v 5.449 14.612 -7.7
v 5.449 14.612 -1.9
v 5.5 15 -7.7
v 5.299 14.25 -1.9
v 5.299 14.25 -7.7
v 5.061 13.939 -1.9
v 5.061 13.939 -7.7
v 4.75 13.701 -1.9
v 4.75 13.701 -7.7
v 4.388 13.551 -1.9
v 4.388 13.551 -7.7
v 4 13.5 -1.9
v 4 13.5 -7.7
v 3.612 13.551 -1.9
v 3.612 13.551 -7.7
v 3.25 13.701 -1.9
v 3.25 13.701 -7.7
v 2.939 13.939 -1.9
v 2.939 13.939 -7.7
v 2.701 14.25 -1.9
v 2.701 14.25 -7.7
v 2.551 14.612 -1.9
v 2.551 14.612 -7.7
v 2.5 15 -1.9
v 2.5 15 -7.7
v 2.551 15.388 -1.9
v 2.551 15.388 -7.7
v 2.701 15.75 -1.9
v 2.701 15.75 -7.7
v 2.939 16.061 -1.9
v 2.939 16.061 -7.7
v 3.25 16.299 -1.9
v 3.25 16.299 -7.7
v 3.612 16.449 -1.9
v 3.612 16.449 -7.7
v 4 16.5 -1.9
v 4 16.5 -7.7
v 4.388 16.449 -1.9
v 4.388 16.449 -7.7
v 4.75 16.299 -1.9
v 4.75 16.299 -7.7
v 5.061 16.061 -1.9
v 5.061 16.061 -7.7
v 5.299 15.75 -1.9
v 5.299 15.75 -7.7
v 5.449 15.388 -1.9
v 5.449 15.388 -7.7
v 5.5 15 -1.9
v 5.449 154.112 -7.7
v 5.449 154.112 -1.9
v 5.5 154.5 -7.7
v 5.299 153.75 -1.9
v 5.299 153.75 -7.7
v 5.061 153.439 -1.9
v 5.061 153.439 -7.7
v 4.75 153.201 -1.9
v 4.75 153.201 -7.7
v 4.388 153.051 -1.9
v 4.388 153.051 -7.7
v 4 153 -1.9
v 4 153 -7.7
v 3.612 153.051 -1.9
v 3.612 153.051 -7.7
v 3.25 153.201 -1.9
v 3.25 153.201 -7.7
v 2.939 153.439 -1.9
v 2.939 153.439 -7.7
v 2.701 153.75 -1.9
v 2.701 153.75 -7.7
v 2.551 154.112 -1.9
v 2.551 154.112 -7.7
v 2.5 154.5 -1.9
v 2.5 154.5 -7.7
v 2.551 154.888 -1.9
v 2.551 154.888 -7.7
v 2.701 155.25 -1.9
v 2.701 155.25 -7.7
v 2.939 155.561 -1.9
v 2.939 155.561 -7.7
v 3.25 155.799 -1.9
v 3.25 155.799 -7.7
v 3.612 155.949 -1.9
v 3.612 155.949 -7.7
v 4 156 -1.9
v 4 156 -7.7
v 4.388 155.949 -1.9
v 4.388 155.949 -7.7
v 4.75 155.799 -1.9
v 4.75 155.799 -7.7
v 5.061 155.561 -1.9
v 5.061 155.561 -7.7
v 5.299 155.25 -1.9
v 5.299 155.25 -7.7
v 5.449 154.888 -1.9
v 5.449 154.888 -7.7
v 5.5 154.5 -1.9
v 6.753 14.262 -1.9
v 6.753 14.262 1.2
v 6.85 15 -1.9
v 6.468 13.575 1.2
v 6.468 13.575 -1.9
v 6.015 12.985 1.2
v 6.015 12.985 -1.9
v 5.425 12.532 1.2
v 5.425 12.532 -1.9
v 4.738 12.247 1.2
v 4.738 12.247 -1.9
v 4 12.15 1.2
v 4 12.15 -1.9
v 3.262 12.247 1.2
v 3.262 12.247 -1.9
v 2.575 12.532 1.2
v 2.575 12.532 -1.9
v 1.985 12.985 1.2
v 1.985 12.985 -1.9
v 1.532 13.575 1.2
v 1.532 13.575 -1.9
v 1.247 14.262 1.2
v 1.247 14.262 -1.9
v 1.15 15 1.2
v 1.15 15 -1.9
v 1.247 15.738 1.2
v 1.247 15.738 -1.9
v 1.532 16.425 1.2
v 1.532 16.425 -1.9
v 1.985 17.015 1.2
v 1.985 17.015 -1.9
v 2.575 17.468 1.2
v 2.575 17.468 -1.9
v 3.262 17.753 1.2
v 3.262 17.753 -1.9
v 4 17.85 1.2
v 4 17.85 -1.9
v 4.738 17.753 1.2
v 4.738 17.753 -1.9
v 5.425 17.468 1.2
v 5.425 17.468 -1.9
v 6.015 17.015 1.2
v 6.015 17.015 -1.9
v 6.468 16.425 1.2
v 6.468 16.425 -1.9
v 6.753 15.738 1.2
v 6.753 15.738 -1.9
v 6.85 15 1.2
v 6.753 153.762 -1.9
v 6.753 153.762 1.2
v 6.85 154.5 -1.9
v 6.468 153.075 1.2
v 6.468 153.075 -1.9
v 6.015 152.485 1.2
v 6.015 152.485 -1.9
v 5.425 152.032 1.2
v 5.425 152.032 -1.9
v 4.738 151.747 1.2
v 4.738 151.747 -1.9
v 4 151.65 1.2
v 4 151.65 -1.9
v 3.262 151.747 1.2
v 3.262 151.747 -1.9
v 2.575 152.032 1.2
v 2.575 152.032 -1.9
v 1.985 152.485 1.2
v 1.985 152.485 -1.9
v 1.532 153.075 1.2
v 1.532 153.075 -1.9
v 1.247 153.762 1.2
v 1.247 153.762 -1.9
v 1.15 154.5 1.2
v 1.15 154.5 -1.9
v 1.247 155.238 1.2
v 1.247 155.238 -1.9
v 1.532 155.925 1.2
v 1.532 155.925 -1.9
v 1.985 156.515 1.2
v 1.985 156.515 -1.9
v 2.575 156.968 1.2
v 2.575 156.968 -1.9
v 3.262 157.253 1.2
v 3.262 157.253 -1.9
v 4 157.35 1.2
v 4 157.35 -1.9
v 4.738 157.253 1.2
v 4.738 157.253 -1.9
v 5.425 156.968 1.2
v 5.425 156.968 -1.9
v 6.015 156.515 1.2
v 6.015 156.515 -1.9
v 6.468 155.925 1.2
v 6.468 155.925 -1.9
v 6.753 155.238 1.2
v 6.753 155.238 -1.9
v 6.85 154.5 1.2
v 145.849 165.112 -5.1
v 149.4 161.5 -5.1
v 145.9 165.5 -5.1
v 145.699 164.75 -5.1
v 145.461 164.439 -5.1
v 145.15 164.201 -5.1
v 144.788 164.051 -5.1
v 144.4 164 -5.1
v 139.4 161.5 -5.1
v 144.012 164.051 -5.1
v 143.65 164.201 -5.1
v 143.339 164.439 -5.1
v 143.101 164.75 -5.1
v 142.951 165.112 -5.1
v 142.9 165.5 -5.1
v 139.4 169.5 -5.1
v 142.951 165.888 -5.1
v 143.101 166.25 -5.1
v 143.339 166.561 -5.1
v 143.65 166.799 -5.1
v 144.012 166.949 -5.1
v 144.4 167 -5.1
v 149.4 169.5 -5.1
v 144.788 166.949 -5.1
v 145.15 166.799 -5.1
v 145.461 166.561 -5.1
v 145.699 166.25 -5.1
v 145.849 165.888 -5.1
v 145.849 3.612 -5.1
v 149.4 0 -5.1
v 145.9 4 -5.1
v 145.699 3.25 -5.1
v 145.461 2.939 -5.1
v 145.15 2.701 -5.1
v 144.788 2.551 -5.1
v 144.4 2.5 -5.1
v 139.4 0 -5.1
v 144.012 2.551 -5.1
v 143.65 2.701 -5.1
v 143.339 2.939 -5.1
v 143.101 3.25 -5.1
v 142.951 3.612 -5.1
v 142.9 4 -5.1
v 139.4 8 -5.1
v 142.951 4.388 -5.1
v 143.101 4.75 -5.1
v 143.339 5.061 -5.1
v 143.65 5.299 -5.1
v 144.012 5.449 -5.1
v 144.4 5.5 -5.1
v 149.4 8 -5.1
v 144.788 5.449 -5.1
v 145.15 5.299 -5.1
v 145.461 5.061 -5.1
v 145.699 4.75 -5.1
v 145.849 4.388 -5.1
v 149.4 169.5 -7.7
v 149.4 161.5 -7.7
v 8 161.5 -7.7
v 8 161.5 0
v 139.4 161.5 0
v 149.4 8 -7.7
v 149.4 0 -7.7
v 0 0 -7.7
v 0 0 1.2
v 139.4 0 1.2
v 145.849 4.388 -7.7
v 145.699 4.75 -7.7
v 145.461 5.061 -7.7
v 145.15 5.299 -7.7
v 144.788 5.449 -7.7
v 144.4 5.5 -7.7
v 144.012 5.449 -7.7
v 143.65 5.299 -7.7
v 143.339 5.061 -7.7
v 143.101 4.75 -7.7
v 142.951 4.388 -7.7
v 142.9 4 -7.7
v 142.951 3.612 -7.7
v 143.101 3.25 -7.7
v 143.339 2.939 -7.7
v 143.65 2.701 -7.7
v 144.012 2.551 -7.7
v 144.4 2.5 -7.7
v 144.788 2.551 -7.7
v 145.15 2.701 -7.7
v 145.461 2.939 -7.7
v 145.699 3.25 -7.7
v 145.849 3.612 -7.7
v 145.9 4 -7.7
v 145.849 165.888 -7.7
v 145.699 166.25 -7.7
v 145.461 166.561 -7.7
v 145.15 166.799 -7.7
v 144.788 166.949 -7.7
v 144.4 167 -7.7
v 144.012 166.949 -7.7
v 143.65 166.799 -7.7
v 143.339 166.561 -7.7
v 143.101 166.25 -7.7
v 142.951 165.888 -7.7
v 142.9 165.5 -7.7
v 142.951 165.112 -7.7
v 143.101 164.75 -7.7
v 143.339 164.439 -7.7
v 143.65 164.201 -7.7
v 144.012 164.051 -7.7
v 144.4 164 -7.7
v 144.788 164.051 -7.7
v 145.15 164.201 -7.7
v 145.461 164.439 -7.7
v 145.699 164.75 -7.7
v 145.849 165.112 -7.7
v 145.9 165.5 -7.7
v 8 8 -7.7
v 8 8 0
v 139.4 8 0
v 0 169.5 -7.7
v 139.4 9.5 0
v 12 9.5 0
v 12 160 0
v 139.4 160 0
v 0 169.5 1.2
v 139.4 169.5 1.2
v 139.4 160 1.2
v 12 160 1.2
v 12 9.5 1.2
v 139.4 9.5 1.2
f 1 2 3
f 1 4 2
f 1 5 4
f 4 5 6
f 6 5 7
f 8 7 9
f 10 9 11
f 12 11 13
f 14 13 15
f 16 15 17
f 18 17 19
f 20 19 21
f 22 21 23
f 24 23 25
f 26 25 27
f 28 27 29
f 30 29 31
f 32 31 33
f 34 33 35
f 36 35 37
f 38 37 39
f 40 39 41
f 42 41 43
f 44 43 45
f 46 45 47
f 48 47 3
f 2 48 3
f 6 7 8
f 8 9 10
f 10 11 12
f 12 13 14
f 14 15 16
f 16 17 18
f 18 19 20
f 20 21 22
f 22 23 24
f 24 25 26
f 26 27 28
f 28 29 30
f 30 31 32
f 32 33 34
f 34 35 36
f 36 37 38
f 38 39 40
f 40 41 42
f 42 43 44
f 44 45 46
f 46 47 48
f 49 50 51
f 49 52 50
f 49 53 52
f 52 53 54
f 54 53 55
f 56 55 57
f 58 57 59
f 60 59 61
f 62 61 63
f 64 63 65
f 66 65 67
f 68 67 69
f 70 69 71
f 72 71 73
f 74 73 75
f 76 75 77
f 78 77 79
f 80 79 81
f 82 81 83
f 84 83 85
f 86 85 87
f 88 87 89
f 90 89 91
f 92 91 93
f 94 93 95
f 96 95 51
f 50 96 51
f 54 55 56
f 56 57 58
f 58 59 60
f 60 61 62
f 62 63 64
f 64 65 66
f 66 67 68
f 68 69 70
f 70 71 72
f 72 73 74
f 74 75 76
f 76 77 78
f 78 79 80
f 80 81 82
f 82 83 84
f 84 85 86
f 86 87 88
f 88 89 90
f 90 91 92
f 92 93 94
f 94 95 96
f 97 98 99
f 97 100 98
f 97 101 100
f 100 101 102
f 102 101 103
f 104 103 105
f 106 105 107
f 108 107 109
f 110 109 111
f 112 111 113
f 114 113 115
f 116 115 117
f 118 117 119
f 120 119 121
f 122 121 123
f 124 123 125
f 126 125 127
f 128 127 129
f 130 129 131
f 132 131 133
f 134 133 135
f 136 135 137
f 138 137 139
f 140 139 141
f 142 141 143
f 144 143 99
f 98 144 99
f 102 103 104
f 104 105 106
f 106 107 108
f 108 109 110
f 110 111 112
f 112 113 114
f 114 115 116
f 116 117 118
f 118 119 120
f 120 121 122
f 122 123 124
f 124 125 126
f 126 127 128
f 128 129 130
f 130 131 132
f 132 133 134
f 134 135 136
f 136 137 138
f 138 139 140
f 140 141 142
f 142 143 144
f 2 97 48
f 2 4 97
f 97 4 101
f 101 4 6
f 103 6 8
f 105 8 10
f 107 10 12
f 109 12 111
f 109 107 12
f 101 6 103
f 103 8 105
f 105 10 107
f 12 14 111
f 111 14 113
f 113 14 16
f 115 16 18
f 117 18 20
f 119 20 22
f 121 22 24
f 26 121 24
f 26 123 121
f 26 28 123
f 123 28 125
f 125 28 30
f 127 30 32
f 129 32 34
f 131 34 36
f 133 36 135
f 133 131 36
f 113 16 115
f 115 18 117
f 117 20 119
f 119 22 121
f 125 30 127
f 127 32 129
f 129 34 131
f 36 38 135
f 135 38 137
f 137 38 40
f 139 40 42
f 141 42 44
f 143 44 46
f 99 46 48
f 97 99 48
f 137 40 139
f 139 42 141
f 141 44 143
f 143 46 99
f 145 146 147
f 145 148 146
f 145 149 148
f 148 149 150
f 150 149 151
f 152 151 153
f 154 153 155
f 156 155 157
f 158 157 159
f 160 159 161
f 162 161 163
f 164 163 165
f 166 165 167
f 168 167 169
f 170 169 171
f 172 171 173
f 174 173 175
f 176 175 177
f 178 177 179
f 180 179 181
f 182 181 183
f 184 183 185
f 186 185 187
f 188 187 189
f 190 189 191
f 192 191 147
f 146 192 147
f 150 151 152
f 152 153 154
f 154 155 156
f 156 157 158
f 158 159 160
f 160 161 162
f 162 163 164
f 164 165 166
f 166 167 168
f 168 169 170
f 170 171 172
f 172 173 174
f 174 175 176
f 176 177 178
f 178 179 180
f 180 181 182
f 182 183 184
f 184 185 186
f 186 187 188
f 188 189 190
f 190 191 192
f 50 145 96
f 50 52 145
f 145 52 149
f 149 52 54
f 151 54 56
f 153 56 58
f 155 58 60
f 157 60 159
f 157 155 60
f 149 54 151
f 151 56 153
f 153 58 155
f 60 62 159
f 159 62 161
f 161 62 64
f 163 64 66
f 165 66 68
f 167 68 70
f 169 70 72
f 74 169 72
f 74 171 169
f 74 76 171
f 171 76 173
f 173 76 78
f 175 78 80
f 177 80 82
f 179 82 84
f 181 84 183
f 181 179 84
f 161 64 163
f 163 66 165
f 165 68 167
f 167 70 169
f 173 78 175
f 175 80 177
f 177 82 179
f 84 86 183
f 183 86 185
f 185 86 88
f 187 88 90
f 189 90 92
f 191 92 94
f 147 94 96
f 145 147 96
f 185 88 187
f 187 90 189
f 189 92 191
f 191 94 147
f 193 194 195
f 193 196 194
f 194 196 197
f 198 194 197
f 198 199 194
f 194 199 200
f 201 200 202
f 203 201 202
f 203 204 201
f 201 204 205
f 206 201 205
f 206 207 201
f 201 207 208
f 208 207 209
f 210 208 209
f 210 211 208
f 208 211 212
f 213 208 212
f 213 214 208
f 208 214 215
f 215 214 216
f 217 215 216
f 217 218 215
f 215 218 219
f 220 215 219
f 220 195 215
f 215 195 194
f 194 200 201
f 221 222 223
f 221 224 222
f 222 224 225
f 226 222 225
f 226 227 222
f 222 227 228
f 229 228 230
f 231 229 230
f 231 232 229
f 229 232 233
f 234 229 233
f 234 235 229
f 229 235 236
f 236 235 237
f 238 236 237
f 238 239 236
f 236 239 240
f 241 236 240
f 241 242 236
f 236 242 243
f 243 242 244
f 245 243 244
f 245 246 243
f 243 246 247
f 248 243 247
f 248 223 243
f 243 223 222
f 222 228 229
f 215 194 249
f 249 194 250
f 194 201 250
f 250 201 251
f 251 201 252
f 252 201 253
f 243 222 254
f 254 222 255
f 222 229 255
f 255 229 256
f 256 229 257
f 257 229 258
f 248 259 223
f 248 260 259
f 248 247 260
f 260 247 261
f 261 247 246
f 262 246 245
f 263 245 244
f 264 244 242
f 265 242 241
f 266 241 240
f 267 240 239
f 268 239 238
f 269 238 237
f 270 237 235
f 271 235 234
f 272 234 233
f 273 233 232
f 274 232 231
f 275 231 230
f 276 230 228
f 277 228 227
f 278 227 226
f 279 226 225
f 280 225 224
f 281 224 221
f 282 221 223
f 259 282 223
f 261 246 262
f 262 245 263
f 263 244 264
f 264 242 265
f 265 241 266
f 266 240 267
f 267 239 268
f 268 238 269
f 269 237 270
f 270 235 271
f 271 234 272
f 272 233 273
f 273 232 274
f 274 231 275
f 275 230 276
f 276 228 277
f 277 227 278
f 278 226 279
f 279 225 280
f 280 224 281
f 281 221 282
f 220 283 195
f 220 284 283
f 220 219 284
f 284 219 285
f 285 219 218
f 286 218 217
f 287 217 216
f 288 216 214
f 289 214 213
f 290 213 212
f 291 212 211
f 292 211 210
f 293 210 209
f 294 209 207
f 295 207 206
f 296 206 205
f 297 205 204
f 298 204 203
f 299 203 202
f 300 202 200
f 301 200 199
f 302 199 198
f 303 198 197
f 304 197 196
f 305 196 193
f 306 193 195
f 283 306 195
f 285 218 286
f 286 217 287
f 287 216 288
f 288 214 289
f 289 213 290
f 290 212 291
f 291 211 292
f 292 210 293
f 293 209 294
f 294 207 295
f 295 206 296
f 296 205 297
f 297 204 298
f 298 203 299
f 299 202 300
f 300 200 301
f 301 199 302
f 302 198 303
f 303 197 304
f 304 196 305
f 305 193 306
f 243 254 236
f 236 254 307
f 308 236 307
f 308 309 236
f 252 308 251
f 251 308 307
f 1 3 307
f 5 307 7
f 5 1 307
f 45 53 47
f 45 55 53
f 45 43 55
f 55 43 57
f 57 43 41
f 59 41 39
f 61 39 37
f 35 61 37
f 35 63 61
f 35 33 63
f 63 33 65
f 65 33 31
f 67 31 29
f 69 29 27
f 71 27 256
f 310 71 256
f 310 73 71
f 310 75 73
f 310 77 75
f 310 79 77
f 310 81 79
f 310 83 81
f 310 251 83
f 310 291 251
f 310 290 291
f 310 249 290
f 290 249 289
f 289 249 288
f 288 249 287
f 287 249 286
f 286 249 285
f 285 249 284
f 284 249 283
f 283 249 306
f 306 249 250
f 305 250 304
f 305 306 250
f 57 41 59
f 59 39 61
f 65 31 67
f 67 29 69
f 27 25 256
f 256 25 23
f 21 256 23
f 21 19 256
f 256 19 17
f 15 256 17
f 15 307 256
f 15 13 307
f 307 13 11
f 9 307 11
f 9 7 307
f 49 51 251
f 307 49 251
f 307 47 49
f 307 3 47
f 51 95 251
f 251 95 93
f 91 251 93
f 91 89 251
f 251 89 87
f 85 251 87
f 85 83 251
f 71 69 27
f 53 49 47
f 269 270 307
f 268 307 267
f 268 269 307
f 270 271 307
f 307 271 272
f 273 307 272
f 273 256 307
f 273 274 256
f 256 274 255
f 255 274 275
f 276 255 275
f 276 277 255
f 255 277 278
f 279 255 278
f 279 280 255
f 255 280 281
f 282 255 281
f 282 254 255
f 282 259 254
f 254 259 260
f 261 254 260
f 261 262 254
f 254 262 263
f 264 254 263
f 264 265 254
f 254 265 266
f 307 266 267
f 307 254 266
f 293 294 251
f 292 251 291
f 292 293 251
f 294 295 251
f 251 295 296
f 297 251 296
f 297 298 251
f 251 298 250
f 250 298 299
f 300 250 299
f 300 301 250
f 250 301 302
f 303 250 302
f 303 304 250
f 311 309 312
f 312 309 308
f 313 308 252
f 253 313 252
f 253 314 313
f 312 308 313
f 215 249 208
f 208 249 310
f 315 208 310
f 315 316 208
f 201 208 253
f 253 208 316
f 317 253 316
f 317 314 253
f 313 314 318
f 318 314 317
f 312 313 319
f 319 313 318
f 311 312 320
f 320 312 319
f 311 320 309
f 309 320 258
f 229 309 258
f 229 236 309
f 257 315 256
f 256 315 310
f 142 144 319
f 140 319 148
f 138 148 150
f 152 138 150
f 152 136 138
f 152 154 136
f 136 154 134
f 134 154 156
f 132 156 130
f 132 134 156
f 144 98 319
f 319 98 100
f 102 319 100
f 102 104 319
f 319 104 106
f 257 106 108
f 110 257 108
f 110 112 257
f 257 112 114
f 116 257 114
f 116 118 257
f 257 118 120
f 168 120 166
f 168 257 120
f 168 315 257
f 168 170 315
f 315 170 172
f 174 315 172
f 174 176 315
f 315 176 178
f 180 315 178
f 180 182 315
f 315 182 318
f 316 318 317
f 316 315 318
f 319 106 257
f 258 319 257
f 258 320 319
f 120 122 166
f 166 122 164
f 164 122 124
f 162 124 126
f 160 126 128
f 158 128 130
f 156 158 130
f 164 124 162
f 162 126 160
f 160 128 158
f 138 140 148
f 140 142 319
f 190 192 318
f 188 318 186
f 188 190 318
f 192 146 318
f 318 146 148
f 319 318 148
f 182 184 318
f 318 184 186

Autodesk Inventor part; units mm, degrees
ref_plane "YZ Plane" through (0, 0, 0) normal (1, 0, 0) x (0, 1, 0)
ref_plane "XZ Plane" through (0, 0, 0) normal (0, 1, 0) x (-1, 0, 0)
ref_plane "XY Plane" through (0, 0, 0) normal (0, 0, 1) x (1, 0, 0)
sketch "Skizze1" plane through (0, 0, 0) normal (0, 0, 1) x (1, 0, 0)
  line L0 (0, 0) -> (139.4, 0) construction
  line L1 (139.4, 0) -> (139.4, 169.5) construction
  line L2 (139.4, 169.5) -> (0, 169.5)
  line L3 (0, 169.5) -> (0, 0)
  line L4 (139.4, 160) -> (12, 160)
  line L5 (12, 160) -> (12, 9.5)
  line L6 (12, 9.5) -> (139.4, 9.5)
  line L7 (139.4, 9.5) -> (139.4, 160) construction
  line L8 (0, 0) -> (139.4, 0)
  line L9 (139.4, 0) -> (139.4, 9.5)
  line L10 (139.4, 160) -> (139.4, 169.5)
  dimension "d0" = 9.5
  dimension "d1" = 9.5
  dimension "d2" = 12
  dimension "d3" = 150.5
  dimension "d4" = 127.4
extrude "Extrusion1" add sketch "Skizze1" along normal blind 1.2
sketch "Skizze2" plane through (0, 0, 0) normal (0, 0, -1) x (-1, 0, 0)
  line L0 (-139.4, 8) -> (-8, 8)
  line L1 (-8, 8) -> (-8, 161.5)
  line L2 (-8, 161.5) -> (-139.4, 161.5)
  line L3 (0, 0) -> (-139.4, 0) projected
  line L4 (0, 0) -> (0, 169.5) projected
  line L5 (0, 169.5) -> (-139.4, 169.5) projected
  line L6 (-139.4, 160) -> (-139.4, 169.5) projected
  line L7 (-139.4, 169.5) -> (-149.4, 169.5)
  line L8 (-149.4, 169.5) -> (-149.4, 161.5)
  line L9 (-149.4, 161.5) -> (-139.4, 161.5)
  line L10 (-139.4, 0) -> (-139.4, 9.5) projected
  line L11 (-139.4, 0) -> (-149.4, 0)
  line L12 (-149.4, 0) -> (-149.4, 8)
  line L13 (-149.4, 8) -> (-139.4, 8)
  circle A0 centre (-144.4, 165.5) radius 1.5
  circle A1 centre (-144.4, 4) radius 1.5
  dimension "d7" = 10
  dimension "d8" = 8
  dimension "d9" = 8
  dimension "d10" = 8
  dimension "d11" = 3
  dimension "d12" = 5
  dimension "d13" = 4
  dimension "d14" = 3
  dimension "d15" = 5
  dimension "d16" = 4
extrude "Extrusion2" add sketch "Skizze2" along normal blind 7.7
sketch "Skizze3" plane through (0, 0, 0) normal (0, 0, 1) x (1, 0, 0)
  line L0 (139.4, 169.5) -> (139.4, 161.5) projected
  line L1 (139.4, 161.5) -> (149.4, 161.5) projected
  line L2 (149.4, 161.5) -> (149.4, 169.5) projected
  line L3 (149.4, 169.5) -> (139.4, 169.5) projected
  circle A0 centre (144.4, 165.5) radius 1.5 projected
  line L4 (139.4, 8) -> (139.4, 0) projected
  line L5 (139.4, 0) -> (149.4, 0) projected
  line L6 (149.4, 0) -> (149.4, 8) projected
  line L7 (149.4, 8) -> (139.4, 8) projected
  circle A1 centre (144.4, 4) radius 1.5 projected
  point P0 (0, 0)
extrude "Extrusion3" cut sketch "Skizze3" against normal blind 5.1
sketch "Skizze4" plane through (0, 0, 1.2) normal (0, 0, 1) x (1, 0, 0)
  line L0 (139.4, 169.5) -> (0, 169.5) construction
  line L1 (4, 169.5) -> (4, 0) construction
  line L2 (0, 0) -> (139.4, 0) construction
  line L3 (0, 169.5) -> (0, 0) construction
  circle A0 centre (4, 15) radius 2.85
  circle A1 centre (4, 154.5) radius 2.85
  dimension "d21" = 4
  dimension "d22" = 5.7
  dimension "d23" = 5.7
  dimension "d24" = 15
  dimension "d25" = 15
extrude "Extrusion4" cut sketch "Skizze4" against normal blind 3.1
sketch "Skizze5" plane through (4, 154.5, -1.9) normal (0, 0, 1) x (1, 0, 0)
  circle A0 centre (0, -139.5) radius 2.85 projected
  circle A1 centre (0, 0) radius 2.85 projected
  circle A2 centre (0, 0) radius 2.85 projected
  circle A3 centre (0, 0) radius 1.5
  circle A4 centre (0, -139.5) radius 1.5
  point P0 (-4, -154.5)
  dimension "d28" = 3
  dimension "d29" = 3
extrude "Extrusion5" cut sketch "Skizze5" against normal blind 42.55 contours A3 | A4
equation "\"d1\" = d0"
equation "\"d14\" = d11"
equation "\"d22\" = d23"
equation "\"d25\" = d24"
equation "\"d28\" = d29"
properties part number "Case-Side"
